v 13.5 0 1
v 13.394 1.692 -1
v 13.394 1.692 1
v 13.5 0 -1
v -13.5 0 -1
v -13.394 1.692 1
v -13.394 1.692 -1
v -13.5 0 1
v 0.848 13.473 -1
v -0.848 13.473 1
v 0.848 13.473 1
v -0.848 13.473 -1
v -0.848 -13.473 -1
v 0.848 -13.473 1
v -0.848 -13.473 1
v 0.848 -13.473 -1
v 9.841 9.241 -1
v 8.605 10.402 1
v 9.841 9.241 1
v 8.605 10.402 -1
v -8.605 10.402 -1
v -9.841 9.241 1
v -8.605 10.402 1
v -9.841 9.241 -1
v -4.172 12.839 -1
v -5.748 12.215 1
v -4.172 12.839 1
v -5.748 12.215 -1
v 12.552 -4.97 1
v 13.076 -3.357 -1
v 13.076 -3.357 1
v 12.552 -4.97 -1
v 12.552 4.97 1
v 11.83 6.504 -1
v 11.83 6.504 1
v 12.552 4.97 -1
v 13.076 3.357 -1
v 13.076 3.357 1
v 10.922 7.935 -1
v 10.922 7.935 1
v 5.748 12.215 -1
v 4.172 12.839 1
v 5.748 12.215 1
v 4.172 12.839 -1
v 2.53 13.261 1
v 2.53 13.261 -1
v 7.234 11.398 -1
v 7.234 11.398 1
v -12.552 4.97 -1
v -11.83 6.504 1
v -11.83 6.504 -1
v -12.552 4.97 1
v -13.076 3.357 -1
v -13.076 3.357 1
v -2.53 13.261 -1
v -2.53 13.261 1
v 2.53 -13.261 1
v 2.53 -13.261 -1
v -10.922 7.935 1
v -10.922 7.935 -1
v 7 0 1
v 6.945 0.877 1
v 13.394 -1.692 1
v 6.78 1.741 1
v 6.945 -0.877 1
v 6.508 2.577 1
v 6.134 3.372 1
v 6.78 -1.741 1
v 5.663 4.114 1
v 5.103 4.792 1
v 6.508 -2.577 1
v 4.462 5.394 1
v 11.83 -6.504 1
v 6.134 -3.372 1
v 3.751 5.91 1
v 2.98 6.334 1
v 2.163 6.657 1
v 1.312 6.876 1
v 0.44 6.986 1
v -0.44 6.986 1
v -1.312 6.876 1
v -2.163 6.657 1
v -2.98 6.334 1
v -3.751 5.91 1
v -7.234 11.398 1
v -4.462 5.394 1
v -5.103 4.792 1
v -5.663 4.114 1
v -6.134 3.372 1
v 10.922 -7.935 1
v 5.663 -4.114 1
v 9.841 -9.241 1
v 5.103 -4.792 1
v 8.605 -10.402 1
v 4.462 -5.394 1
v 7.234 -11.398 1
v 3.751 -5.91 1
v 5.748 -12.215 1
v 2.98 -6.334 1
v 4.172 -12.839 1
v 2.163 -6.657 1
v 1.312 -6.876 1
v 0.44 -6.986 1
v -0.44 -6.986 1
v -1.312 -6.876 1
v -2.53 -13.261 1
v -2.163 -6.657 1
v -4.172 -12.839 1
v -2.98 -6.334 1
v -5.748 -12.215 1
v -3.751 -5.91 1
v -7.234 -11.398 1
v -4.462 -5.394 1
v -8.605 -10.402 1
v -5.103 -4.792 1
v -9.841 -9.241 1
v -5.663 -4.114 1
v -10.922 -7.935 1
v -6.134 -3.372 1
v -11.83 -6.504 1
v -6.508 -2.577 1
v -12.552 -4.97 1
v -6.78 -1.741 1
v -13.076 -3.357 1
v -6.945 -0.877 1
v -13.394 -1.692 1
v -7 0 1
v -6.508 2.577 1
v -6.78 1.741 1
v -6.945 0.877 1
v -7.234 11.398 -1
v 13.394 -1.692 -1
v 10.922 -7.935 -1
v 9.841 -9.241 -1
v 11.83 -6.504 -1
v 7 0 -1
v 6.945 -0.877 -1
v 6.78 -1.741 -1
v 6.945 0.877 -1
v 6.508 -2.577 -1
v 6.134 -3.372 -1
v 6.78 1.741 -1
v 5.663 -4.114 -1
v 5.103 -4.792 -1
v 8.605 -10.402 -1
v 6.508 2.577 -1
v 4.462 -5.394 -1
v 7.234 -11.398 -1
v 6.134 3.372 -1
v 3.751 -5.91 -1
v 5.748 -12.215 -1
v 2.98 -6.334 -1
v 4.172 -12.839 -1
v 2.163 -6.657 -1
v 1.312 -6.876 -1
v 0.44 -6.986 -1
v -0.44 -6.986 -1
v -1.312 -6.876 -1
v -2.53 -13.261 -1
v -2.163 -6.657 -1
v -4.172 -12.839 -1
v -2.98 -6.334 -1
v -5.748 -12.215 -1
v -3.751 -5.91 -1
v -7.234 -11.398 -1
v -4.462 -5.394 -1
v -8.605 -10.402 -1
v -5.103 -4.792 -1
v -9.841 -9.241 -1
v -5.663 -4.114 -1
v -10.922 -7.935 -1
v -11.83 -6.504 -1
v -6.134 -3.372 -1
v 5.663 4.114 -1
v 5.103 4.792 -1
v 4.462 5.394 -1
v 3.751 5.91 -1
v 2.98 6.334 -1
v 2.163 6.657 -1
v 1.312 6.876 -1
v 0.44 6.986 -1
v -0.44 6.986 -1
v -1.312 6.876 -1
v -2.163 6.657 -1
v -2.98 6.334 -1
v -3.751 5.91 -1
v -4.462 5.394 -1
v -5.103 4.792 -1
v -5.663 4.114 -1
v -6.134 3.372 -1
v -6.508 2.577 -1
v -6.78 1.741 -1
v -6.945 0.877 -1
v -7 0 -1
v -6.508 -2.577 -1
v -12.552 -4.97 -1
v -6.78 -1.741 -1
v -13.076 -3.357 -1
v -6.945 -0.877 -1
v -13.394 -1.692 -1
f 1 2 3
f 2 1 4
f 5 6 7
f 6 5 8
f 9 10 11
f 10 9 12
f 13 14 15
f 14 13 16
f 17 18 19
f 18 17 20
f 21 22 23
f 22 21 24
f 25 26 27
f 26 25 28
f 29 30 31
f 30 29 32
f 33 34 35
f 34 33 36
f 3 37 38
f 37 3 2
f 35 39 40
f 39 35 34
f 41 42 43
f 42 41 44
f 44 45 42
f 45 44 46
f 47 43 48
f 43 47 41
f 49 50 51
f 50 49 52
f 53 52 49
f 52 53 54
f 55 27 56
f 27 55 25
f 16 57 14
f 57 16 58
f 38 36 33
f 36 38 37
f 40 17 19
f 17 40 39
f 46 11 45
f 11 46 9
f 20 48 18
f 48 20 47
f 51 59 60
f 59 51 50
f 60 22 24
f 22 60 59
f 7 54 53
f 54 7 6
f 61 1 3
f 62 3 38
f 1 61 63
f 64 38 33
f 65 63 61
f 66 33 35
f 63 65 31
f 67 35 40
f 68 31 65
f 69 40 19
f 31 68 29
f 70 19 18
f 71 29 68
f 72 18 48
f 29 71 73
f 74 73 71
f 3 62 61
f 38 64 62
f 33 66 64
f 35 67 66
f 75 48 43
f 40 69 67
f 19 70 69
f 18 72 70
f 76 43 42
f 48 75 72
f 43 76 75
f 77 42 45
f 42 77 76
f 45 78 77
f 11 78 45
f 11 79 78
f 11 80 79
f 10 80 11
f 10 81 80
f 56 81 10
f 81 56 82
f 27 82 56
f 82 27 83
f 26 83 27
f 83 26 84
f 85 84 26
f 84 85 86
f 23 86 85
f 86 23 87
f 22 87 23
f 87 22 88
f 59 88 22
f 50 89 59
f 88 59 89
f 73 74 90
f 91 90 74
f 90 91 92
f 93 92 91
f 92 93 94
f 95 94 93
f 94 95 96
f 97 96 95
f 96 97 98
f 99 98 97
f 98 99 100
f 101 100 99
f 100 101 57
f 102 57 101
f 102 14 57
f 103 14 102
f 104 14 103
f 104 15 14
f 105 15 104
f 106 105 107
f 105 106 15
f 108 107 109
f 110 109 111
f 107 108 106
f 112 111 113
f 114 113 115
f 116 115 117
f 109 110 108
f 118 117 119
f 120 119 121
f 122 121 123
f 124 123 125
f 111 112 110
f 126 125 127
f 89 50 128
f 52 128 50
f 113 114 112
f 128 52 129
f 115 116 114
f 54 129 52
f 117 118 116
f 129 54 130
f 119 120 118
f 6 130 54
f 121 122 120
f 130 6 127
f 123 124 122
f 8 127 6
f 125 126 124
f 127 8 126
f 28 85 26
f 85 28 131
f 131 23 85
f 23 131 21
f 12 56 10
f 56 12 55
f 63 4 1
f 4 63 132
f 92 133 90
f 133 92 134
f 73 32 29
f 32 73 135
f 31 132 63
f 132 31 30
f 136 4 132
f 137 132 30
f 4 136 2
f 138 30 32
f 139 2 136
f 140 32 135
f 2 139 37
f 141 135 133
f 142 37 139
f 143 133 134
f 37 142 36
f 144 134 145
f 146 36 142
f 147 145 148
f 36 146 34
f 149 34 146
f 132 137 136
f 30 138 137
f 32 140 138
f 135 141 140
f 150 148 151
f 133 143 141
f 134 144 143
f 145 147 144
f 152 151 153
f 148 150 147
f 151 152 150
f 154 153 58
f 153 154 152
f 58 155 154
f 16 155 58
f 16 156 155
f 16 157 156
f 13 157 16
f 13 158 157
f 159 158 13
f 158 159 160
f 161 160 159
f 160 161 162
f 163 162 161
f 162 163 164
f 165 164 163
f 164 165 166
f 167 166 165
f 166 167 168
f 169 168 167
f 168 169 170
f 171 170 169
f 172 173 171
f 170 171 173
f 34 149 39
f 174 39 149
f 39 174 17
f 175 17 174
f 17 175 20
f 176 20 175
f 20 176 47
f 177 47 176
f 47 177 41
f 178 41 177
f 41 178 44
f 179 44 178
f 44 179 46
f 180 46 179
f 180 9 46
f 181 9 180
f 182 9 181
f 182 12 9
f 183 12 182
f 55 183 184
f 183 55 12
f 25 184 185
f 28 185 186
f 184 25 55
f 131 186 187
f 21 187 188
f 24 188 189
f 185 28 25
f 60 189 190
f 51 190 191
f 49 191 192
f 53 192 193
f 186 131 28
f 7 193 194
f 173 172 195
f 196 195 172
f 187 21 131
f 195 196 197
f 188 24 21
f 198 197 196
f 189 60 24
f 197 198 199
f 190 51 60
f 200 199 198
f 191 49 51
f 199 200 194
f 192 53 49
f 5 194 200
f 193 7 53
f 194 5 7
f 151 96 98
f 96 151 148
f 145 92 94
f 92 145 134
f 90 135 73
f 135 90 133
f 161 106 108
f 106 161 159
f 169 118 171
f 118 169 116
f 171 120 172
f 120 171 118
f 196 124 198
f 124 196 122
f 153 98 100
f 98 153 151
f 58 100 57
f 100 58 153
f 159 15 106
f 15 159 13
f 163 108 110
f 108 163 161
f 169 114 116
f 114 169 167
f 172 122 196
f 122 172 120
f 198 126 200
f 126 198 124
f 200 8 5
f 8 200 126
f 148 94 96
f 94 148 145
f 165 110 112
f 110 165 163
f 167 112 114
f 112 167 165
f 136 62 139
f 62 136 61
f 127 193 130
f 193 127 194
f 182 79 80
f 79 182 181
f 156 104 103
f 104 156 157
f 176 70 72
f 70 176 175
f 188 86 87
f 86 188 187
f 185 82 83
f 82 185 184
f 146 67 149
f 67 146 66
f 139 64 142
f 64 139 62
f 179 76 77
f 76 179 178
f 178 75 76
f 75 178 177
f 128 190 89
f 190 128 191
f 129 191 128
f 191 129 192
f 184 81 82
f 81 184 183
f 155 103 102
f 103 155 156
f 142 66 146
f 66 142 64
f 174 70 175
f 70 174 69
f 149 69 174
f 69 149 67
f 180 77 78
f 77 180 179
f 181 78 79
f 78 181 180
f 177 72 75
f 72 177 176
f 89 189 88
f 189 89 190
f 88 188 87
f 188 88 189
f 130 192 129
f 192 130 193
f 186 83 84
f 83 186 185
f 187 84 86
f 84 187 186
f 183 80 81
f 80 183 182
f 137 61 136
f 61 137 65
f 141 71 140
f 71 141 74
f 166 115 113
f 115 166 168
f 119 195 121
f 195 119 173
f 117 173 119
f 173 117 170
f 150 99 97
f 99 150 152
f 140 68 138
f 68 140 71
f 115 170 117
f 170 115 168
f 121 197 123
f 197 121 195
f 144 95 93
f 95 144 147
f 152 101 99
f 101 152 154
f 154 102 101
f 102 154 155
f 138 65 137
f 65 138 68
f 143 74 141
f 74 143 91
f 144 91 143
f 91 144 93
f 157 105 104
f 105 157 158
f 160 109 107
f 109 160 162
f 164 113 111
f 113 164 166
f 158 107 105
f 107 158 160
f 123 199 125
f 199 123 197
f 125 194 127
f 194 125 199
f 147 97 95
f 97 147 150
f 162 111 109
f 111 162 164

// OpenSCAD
$fn = 50;


difference() {
	union() {
		translate(v = [0, 0, -1.0000000000]) {
			cylinder(h = 2, r = 13.5000000000);
		}
	}
	union() {
		translate(v = [0, 0, -100.0000000000]) {
			cylinder(h = 200, r = 7);
		}
	}
}
